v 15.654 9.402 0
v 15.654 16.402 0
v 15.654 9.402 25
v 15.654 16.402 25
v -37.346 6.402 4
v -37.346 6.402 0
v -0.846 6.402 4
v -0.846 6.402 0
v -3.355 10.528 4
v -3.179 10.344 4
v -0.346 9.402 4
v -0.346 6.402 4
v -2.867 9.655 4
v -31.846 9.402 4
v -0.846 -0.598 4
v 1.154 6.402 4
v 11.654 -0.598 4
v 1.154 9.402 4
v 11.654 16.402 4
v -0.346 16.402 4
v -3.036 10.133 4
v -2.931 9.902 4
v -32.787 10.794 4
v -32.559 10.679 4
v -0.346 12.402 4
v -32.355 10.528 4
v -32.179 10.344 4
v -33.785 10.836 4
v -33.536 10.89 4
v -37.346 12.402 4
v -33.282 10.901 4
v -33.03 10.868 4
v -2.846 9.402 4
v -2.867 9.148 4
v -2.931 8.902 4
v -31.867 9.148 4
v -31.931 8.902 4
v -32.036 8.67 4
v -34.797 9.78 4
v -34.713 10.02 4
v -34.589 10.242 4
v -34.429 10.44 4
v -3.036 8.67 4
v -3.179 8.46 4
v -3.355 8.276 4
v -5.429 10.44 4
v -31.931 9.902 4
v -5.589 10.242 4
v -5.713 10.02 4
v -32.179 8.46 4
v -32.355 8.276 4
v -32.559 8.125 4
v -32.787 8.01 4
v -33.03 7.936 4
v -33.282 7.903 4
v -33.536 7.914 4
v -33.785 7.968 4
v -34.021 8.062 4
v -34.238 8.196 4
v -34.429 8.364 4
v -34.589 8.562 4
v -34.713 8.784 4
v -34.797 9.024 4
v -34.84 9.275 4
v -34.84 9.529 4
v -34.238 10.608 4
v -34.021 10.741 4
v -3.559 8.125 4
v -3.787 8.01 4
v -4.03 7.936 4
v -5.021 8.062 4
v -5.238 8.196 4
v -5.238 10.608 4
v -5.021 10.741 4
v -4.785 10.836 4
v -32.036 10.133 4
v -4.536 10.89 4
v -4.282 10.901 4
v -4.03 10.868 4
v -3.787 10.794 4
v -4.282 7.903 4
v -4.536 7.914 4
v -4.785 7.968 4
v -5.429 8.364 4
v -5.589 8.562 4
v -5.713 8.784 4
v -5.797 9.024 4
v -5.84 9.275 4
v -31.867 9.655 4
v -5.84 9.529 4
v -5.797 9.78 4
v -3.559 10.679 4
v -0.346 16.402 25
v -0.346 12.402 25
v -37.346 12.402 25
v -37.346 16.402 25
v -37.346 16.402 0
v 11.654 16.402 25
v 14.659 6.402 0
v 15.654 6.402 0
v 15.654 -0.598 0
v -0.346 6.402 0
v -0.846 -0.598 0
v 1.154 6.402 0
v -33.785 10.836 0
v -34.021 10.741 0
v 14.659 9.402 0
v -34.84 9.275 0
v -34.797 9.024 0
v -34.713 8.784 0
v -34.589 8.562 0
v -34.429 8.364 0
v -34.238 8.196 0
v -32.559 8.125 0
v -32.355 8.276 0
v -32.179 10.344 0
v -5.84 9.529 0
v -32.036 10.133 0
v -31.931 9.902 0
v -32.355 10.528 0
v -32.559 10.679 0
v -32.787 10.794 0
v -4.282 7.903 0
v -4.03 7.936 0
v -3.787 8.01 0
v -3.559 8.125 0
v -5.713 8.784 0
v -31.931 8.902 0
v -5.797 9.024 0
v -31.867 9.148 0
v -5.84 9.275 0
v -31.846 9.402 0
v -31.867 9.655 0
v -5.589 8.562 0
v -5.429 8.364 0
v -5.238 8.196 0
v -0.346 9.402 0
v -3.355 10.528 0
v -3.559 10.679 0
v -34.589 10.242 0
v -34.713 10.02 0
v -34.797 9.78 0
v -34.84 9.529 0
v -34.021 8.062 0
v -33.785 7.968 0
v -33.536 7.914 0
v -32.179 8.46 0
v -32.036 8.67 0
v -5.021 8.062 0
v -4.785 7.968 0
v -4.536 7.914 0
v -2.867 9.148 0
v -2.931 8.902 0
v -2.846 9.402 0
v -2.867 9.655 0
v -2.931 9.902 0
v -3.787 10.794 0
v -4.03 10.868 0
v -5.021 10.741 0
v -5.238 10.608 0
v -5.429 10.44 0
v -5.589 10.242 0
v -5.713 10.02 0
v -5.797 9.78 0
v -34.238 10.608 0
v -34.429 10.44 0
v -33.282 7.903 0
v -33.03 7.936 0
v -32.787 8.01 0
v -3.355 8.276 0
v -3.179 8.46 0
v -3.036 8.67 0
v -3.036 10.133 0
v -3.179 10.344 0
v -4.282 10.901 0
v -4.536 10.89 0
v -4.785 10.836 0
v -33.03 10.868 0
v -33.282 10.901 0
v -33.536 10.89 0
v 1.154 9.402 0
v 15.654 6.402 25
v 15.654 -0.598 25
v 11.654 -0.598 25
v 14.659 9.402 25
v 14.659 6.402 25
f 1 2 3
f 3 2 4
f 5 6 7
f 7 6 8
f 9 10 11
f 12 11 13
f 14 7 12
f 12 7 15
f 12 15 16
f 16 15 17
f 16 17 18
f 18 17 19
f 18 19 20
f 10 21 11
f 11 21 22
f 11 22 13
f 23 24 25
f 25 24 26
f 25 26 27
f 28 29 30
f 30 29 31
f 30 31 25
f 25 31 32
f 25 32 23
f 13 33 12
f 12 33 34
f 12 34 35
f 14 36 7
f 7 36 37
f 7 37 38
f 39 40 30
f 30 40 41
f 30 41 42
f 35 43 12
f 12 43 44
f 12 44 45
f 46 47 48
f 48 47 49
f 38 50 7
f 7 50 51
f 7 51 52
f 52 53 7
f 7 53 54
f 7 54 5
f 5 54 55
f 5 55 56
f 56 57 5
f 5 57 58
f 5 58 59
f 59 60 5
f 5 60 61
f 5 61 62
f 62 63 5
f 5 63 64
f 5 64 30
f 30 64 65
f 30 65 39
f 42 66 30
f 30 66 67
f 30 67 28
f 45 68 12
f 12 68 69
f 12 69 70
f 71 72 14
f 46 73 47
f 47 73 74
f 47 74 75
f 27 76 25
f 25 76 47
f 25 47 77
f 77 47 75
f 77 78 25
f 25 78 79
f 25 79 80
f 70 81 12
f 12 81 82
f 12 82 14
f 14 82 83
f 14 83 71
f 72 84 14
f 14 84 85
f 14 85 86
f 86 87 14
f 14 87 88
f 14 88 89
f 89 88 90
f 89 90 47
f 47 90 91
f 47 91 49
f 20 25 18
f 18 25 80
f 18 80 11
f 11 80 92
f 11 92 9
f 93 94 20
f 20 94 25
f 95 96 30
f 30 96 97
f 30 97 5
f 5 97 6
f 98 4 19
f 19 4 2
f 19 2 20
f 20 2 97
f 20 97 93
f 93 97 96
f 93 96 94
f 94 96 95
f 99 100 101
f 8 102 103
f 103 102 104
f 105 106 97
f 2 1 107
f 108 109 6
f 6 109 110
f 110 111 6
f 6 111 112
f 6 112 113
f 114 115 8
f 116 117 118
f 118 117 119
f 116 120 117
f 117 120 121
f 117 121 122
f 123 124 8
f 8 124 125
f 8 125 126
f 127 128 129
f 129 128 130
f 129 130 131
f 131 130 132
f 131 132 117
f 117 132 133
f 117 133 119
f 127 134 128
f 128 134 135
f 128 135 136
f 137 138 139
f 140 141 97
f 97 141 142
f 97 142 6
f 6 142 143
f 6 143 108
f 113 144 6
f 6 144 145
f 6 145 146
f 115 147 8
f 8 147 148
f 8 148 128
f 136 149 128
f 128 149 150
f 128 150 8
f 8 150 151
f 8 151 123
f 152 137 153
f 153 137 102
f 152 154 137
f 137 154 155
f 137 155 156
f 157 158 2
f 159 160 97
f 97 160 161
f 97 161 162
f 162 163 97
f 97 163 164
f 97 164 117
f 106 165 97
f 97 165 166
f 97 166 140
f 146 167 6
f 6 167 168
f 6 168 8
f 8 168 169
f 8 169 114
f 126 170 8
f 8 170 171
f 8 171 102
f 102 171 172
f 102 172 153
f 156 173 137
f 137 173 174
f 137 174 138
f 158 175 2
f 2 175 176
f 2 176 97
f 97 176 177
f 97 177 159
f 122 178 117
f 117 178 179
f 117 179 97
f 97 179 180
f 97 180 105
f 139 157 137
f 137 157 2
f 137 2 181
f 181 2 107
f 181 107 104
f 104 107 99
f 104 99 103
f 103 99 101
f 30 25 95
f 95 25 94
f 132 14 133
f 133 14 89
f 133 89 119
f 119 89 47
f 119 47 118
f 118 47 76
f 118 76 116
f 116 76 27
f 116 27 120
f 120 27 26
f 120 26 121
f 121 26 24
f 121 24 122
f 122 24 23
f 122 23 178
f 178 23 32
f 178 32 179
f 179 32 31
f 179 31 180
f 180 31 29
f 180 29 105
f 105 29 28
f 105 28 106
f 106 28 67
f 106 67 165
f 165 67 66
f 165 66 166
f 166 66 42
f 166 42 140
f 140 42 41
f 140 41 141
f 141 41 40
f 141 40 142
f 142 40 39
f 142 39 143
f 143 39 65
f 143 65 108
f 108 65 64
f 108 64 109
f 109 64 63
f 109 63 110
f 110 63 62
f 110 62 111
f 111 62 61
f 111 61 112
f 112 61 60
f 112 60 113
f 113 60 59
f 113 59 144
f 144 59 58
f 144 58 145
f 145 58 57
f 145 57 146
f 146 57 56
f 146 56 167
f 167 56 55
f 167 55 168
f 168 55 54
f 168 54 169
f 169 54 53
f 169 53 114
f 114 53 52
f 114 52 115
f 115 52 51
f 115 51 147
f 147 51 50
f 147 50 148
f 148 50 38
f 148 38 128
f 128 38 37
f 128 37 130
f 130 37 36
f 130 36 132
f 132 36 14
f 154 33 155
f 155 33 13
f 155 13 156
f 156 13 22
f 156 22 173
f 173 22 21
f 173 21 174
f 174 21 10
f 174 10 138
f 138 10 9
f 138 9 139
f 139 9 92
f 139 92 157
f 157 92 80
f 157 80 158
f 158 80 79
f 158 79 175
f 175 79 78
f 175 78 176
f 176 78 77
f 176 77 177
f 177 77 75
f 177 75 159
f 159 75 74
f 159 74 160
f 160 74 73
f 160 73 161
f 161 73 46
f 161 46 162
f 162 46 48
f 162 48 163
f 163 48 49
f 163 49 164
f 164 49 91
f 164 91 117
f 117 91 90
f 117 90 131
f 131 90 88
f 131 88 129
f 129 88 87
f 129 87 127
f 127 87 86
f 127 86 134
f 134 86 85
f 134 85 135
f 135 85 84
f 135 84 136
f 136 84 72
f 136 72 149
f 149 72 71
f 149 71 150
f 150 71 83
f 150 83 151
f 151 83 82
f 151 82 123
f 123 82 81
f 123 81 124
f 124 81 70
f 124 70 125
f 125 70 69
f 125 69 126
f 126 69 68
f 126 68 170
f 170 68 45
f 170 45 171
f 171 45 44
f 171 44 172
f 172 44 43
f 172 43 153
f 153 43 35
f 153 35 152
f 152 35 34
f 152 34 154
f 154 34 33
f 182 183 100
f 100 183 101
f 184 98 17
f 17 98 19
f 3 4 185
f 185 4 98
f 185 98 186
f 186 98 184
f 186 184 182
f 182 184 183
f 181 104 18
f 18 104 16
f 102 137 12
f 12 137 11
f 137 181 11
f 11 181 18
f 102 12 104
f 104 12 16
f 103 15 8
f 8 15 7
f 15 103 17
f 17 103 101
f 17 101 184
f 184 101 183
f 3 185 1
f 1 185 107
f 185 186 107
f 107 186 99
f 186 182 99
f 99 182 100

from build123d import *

# Parameters (mm, degrees)
CROQUIS1_W              = 37
CROQUIS1_H              = 10
SALIENTE_EXTRUIR1_DEPTH = 25
CROQUIS2_W              = 37
CROQUIS2_H              = 6
CORTAR_EXTRUIR1_DEPTH   = 21
CROQUIS4_R              = 1.5
CORTAR_EXTRUIR2_DEPTH   = 4
CROQUIS5_W              = 4
CROQUIS5_H              = 10
SALIENTE_EXTRUIR2_DEPTH = 16
CROQUIS6_W              = 4
CROQUIS6_H              = 10
SALIENTE_EXTRUIR3_DEPTH = 21
CROQUIS7_W              = 1.5
CROQUIS7_H              = 3
CORTAR_EXTRUIR3_DEPTH   = 4
SALIENTE_EXTRUIR4_DEPTH = 7
CORTAR_EXTRUIR4_START   = -25
CROQUIS9_W              = 0.995479253
CROQUIS9_H              = 3
CORTAR_EXTRUIR4_DEPTH   = 25


with BuildPart() as part:
    # Croquis1 → Saliente-Extruir1 (new body)
    with BuildSketch(Plane.XY):
        with Locations((-18.845794393, 11.401869159)):
            Rectangle(CROQUIS1_W, CROQUIS1_H)
    extrude(amount=SALIENTE_EXTRUIR1_DEPTH)

    # Croquis2 → Cortar-Extruir1 (cut)
    with BuildSketch(Plane.XY.offset(25)):
        with Locations((-18.845794393, 9.401869159)):
            Rectangle(CROQUIS2_W, CROQUIS2_H)
    extrude(amount=-CORTAR_EXTRUIR1_DEPTH, mode=Mode.SUBTRACT)

    # Croquis4 → Cortar-Extruir2 (cut)
    with BuildSketch(Plane.XY.offset(4)):
        with Locations((-33.345794393, 9.401869159)):
            Circle(CROQUIS4_R)
        with Locations((-4.345794393, 9.401869159)):
            Circle(CROQUIS4_R)
    extrude(amount=-CORTAR_EXTRUIR2_DEPTH, mode=Mode.SUBTRACT)

    # Croquis5 → Saliente-Extruir2 (add)
    with BuildSketch(Plane(origin=(-0.345794393, 0, 0), x_dir=(0, 0, -1), z_dir=(1, 0, 0))):
        with Locations((-2, 11.401869159)):
            Rectangle(CROQUIS5_W, CROQUIS5_H)
    extrude(amount=SALIENTE_EXTRUIR2_DEPTH)

    # Croquis6 → Saliente-Extruir3 (add)
    with BuildSketch(Plane.XY.offset(4)):
        with Locations((13.654205607, 11.401869159)):
            Rectangle(CROQUIS6_W, CROQUIS6_H)
    extrude(amount=SALIENTE_EXTRUIR3_DEPTH)

    # Croquis7 → Cortar-Extruir3 (cut)
    with BuildSketch(Plane.XY.offset(4)):
        with Locations((0.404205607, 7.901869159)):
            Rectangle(CROQUIS7_W, CROQUIS7_H)
    extrude(amount=-CORTAR_EXTRUIR3_DEPTH, mode=Mode.SUBTRACT)

    # Croquis8 → Saliente-Extruir4 (add)
    with BuildSketch(Plane.XZ.offset(-6.401869159)):
        Polygon((11.654205607, 25), (15.654205607, 25), (15.654205607, 0), (-0.845794393, 0), (-0.845794393, 4), (11.654205607, 4), align=None)
    extrude(amount=SALIENTE_EXTRUIR4_DEPTH)

    # Croquis9 → Cortar-Extruir4 (cut)
    with BuildSketch(Plane(origin=(0, 0, 0), x_dir=(-1, 0, 0), z_dir=(0, 0, -1)).offset(CORTAR_EXTRUIR4_START)):
        with Locations((-15.156465981, 7.901869159)):
            Rectangle(CROQUIS9_W, CROQUIS9_H)
    extrude(amount=CORTAR_EXTRUIR4_DEPTH, mode=Mode.SUBTRACT)


solid = part.part
